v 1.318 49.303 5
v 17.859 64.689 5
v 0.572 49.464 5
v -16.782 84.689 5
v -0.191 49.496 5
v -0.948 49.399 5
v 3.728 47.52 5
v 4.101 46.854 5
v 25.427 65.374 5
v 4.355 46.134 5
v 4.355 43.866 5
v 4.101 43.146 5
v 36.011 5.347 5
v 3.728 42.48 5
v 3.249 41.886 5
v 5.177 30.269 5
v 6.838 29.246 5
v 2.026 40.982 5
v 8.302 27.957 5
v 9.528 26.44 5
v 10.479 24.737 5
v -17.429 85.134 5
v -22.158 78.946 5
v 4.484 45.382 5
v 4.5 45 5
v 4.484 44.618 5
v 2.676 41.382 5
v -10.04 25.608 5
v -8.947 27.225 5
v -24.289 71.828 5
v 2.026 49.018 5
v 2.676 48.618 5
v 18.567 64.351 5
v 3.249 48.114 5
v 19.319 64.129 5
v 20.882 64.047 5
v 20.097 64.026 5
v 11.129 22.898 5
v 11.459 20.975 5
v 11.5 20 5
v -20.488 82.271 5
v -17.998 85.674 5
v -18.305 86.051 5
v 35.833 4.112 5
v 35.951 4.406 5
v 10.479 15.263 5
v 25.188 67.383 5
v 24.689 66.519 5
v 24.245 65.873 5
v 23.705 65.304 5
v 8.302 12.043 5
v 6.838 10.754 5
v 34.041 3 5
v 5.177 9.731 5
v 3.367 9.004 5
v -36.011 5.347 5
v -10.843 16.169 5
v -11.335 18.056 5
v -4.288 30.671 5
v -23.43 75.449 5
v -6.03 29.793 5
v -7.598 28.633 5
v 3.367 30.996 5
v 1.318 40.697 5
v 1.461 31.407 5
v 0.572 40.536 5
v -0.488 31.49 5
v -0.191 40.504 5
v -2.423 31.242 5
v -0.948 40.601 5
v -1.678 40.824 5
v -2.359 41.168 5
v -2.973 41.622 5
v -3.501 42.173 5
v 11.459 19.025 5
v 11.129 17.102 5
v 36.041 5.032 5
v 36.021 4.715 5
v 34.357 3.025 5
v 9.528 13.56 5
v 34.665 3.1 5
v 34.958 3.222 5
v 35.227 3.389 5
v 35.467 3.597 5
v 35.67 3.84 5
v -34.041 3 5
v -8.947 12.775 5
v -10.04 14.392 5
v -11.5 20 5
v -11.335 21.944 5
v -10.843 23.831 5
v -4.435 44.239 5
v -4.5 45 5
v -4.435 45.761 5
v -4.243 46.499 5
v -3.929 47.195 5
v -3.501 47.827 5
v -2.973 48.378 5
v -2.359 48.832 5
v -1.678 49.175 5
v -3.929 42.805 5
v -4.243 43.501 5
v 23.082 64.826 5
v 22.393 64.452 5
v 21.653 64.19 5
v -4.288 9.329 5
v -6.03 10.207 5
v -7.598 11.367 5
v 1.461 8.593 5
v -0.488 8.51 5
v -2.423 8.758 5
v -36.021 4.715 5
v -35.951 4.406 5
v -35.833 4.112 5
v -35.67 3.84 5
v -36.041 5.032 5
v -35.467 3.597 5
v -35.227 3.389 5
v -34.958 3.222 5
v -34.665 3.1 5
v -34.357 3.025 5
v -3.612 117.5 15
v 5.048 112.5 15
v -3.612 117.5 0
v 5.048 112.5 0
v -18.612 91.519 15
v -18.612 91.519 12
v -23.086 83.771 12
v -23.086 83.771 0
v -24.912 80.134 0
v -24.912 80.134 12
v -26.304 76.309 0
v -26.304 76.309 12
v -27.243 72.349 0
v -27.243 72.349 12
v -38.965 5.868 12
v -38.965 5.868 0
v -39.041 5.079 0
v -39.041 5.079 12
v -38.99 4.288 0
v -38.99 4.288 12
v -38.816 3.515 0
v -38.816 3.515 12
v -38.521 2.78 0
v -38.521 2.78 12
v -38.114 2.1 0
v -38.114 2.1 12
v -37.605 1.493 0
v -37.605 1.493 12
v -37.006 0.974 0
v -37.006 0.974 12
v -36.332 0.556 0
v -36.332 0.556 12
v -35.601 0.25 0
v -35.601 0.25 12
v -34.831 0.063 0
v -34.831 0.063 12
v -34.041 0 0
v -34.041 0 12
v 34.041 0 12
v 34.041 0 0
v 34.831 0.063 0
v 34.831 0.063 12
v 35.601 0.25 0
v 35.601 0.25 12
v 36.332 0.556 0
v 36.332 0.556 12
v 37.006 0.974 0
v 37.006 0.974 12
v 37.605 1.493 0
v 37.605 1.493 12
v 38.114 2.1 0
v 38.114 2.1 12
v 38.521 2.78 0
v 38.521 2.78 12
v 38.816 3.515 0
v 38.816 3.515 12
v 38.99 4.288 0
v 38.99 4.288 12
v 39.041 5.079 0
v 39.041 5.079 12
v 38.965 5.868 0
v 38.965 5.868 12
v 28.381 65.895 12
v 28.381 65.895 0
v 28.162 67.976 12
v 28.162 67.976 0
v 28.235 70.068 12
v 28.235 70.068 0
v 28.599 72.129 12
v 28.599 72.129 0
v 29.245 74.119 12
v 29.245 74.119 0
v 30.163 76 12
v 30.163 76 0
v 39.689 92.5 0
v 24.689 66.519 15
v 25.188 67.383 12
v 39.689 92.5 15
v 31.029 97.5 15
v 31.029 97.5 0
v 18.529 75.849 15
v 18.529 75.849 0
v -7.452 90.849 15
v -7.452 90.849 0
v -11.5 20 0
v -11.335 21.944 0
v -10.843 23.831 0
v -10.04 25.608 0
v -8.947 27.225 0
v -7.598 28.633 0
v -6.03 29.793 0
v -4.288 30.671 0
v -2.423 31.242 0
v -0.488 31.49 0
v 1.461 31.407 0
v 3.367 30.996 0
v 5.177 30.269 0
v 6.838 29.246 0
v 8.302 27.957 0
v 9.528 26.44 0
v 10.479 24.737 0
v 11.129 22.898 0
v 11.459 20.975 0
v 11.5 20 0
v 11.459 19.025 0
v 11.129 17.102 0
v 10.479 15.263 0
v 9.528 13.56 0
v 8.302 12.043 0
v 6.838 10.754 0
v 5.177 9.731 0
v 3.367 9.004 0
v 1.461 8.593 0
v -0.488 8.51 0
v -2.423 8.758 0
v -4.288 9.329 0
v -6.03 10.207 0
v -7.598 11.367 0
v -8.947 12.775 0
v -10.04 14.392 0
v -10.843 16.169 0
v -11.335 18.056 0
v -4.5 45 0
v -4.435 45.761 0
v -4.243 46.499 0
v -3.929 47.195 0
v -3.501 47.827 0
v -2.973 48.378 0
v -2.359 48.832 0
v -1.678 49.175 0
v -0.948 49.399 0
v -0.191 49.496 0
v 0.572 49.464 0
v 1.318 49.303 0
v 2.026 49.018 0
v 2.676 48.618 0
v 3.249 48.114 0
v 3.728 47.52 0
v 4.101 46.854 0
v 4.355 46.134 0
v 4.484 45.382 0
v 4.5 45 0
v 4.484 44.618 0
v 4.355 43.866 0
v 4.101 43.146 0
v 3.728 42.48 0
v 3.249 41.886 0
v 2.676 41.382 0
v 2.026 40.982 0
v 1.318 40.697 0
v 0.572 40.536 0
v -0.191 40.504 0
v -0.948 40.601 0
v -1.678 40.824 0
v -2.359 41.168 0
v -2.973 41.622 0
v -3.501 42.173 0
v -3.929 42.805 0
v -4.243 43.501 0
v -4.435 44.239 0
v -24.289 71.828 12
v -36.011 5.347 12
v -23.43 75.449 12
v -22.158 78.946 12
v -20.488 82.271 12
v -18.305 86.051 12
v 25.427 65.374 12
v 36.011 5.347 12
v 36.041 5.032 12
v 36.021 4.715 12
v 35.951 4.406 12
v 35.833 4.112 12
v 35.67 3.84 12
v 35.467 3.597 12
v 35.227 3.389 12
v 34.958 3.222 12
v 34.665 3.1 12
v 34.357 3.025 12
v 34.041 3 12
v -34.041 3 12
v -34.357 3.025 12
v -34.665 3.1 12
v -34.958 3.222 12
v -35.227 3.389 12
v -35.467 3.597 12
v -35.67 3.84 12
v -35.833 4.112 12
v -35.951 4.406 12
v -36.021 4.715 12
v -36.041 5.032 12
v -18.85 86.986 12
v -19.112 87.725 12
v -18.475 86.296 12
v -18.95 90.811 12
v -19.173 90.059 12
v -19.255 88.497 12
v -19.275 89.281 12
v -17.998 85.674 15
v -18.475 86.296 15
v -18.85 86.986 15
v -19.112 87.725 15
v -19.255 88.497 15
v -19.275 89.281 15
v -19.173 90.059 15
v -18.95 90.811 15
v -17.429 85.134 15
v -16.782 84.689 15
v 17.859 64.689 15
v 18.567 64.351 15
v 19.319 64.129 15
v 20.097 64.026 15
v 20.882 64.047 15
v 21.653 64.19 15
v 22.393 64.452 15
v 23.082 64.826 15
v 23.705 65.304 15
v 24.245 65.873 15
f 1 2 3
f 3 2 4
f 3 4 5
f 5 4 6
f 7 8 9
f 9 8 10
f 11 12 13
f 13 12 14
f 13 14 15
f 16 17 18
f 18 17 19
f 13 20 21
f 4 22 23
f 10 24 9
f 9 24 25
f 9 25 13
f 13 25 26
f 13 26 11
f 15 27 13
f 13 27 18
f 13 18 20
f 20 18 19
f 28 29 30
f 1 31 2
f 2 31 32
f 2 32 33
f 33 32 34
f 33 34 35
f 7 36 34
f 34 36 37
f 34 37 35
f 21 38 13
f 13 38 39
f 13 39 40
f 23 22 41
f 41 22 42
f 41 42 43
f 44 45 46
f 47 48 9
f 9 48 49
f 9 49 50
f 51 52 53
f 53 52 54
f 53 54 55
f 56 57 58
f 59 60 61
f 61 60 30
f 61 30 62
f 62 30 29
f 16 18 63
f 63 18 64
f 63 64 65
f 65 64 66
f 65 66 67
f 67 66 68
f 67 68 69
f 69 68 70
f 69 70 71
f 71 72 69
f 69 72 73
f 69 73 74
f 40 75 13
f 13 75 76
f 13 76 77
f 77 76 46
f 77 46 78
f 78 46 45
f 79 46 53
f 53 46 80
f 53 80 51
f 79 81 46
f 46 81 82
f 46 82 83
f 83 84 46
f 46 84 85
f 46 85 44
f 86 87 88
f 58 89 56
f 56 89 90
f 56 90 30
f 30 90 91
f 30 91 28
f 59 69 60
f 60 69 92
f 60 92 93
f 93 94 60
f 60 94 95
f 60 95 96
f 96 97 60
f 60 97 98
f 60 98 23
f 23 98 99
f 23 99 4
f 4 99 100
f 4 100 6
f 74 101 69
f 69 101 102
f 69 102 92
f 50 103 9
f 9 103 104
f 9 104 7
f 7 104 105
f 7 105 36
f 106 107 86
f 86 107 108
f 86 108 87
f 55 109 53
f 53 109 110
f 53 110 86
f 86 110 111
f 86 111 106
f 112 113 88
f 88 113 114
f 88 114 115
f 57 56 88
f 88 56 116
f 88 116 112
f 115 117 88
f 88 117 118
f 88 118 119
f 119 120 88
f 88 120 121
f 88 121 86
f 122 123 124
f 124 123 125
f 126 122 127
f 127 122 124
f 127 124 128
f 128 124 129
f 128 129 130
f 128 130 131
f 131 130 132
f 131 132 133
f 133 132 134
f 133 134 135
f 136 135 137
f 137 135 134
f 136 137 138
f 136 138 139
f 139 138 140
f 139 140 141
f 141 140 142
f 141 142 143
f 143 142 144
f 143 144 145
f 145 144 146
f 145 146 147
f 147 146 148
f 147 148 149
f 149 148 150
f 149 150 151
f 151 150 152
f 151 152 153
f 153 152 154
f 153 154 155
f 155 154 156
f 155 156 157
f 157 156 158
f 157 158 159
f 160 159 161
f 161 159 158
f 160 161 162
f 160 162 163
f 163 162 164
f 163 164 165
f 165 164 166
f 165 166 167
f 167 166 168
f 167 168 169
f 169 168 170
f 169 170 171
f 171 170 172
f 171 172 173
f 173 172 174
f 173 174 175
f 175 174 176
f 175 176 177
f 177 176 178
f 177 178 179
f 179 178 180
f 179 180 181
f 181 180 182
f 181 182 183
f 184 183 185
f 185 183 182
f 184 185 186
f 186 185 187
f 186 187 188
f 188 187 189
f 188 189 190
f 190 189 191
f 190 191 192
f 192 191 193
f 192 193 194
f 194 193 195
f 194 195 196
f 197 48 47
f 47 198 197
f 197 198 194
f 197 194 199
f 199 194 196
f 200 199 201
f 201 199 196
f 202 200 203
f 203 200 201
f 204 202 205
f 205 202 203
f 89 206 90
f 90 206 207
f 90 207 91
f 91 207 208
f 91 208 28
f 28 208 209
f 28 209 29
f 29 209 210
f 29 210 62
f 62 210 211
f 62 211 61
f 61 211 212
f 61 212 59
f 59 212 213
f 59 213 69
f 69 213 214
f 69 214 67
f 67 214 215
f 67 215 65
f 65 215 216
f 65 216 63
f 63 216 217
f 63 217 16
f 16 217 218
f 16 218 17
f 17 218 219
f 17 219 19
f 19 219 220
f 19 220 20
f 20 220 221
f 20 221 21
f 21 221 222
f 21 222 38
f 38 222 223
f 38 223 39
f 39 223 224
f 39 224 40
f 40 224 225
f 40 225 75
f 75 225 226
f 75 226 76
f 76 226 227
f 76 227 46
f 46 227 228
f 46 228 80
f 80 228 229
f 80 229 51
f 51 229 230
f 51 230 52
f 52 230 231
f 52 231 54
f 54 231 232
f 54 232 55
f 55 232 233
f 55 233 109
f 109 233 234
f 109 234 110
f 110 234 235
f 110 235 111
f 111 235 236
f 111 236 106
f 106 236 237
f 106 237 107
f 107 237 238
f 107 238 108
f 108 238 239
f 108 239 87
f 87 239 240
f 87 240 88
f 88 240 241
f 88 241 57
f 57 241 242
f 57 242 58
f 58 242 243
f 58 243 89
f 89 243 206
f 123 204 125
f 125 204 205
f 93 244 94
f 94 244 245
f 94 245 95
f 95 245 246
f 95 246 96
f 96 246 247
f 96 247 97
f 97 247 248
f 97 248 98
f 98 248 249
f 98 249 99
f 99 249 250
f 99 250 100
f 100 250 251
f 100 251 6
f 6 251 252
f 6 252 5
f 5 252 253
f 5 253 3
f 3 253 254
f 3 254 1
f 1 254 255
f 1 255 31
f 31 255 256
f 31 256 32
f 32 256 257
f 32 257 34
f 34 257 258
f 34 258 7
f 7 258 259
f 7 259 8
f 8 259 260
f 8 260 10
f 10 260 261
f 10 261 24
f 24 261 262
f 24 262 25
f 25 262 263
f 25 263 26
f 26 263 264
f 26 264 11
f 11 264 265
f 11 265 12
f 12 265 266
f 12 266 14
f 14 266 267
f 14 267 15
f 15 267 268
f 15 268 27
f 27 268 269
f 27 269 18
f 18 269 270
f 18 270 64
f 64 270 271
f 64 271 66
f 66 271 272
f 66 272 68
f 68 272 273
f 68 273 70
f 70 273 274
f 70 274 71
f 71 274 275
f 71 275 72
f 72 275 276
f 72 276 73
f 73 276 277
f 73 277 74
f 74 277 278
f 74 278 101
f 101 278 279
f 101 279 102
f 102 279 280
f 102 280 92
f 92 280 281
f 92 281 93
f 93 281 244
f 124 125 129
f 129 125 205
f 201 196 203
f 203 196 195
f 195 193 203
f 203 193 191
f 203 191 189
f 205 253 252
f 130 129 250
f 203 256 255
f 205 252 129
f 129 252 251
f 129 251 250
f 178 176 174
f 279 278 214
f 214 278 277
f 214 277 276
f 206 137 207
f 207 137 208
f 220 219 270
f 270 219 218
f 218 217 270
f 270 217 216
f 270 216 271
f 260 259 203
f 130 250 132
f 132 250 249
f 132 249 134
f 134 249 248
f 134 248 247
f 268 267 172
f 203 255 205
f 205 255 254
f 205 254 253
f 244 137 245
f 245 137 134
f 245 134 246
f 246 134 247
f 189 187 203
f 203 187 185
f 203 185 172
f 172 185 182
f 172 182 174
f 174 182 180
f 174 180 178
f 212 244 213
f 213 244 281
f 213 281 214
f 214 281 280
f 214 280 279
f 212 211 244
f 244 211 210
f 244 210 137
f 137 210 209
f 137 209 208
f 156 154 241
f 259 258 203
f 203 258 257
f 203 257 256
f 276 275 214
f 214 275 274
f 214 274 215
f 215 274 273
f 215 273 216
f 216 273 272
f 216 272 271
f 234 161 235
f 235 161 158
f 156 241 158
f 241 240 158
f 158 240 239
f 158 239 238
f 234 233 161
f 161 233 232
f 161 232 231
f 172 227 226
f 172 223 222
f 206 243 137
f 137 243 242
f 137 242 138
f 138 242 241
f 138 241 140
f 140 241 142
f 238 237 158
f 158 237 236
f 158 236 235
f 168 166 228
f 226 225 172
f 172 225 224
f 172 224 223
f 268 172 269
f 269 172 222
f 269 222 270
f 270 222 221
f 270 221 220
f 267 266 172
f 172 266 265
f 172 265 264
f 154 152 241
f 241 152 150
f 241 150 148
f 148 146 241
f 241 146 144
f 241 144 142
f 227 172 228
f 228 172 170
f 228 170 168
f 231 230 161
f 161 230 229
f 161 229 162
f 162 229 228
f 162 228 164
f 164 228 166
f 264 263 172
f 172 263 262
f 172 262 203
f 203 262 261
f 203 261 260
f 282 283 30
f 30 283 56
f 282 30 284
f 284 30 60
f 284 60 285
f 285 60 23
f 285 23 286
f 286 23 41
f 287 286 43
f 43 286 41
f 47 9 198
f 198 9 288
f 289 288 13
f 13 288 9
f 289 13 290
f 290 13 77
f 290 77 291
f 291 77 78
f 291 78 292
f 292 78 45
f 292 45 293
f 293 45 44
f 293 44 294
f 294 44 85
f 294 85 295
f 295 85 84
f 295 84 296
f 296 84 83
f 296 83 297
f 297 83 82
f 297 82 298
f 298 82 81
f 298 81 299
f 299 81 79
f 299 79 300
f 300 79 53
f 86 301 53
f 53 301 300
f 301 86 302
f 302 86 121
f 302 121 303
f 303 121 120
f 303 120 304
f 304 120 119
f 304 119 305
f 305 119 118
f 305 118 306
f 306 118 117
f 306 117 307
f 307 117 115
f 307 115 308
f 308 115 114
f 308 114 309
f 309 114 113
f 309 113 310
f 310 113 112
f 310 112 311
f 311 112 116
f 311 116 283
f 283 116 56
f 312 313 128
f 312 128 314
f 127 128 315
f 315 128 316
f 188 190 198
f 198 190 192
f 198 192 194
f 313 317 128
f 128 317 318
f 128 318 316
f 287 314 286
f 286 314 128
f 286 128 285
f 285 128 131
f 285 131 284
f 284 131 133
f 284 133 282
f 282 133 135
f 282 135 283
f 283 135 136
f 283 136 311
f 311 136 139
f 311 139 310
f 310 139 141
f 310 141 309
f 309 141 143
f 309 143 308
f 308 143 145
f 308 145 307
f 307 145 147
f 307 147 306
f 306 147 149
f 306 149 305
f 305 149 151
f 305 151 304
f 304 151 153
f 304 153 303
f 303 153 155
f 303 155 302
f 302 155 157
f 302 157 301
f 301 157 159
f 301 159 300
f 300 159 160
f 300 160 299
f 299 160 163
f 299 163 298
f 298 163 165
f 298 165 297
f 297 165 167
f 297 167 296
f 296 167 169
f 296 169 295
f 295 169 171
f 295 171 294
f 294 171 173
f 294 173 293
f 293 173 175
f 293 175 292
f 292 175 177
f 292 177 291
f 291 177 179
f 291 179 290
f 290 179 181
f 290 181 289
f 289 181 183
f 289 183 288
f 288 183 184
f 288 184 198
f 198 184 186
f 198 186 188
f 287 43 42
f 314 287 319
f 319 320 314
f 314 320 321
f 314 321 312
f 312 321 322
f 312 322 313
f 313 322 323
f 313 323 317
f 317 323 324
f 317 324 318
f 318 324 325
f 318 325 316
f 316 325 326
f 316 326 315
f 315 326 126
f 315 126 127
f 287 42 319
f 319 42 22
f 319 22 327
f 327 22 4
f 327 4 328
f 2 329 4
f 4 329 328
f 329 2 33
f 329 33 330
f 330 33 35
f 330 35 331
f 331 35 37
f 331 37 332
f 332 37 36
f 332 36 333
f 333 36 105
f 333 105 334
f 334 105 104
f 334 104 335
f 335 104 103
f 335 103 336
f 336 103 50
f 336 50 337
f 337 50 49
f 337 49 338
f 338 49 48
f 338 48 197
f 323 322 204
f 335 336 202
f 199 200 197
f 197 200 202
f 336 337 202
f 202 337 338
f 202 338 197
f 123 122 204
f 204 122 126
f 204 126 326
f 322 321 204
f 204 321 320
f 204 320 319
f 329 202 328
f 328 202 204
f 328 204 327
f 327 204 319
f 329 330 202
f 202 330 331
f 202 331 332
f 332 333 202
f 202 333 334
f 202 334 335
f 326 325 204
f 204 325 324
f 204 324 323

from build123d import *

# Parameters (mm, degrees)
SKETCH1_R           = 11.5
SKETCH1_R_2         = 4.5
BOSS_EXTRUDE1_DEPTH = 5
BOSS_EXTRUDE2_DEPTH = 12
BOSS_EXTRUDE3_DEPTH = 15


with BuildPart() as part:
    # Sketch1 → Boss-Extrude1 (new body)
    with BuildSketch(Plane.XY):
        with BuildLine():
            ThreePointArc((-38.965270802, 5.868240888), (-37.871454253, 1.786061952), (-34.041232037, 0))
            Line((-34.041232037, 0), (34.041232037, 0))
            ThreePointArc((34.041232037, 0), (37.871454253, 1.786061952), (38.965270802, 5.868240888))
            Line((38.965270802, 5.868240888), (28.380934182, 65.894996734))
            ThreePointArc((28.380934182, 65.894996734), (28.380934182, 71.104442064), (30.162669421, 75.999719399))
            Line((30.162669421, 75.999719399), (39.689110868, 92.5))
            Line((39.689110868, 92.5), (31.02885683, 97.5))
            Line((31.02885683, 97.5), (18.52885683, 75.849364905))
            Line((18.52885683, 75.849364905), (-7.451905284, 90.849364905))
            Line((-7.451905284, 90.849364905), (5.048094716, 112.5))
            Line((5.048094716, 112.5), (-3.612159322, 117.5))
            Line((-3.612159322, 117.5), (-23.085586146, 83.771035343))
            ThreePointArc((-23.085586146, 83.771035343), (-25.663938741, 78.241740359), (-27.242968369, 72.348721561))
            Line((-27.242968369, 72.348721561), (-38.965270802, 5.868240888))
        make_face()
        with Locations((0, 20)):
            Circle(SKETCH1_R, mode=Mode.SUBTRACT)
        with Locations((0, 45)):
            Circle(SKETCH1_R_2, mode=Mode.SUBTRACT)
    extrude(amount=BOSS_EXTRUDE1_DEPTH)

    # Sketch1<3> → Boss-Extrude2 (add)
    with BuildSketch(Plane.XY):
        with BuildLine():
            ThreePointArc((-38.965270802, 5.868240888), (-37.871454253, 1.786061952), (-34.041232037, 0))
            Line((-34.041232037, 0), (34.041232037, 0))
            ThreePointArc((34.041232037, 0), (37.871454253, 1.786061952), (38.965270802, 5.868240888))
            Line((38.965270802, 5.868240888), (28.380934182, 65.894996734))
            ThreePointArc((28.380934182, 65.894996734), (28.380934182, 71.104442064), (30.162669421, 75.999719399))
            Line((30.162669421, 75.999719399), (25.187732235, 67.382875429))
            ThreePointArc((25.187732235, 67.382875429), (25.278878582, 66.375106712), (25.426510923, 65.374052201))
            Line((25.426510923, 65.374052201), (36.010847543, 5.347296355))
            ThreePointArc((36.010847543, 5.347296355), (35.573320923, 3.714424781), (34.041232037, 3))
            Line((34.041232037, 3), (-34.041232037, 3))
            ThreePointArc((-34.041232037, 3), (-35.573320923, 3.714424781), (-36.010847543, 5.347296355))
            Line((-36.010847543, 5.347296355), (-24.28854511, 71.827777028))
            ThreePointArc((-24.28854511, 71.827777028), (-22.844860879, 77.215679929), (-20.487509935, 82.271035343))
            Line((-20.487509935, 82.271035343), (-18.305370958, 86.05061092))
            ThreePointArc((-18.305370958, 86.05061092), (-19.274182883, 88.739179708), (-18.612159322, 91.519237886))
            Line((-18.612159322, 91.519237886), (-23.085586146, 83.771035343))
            ThreePointArc((-23.085586146, 83.771035343), (-25.663938741, 78.241740359), (-27.242968369, 72.348721561))
            Line((-27.242968369, 72.348721561), (-38.965270802, 5.868240888))
        make_face()
    extrude(amount=BOSS_EXTRUDE2_DEPTH)

    # Sketch1<4> → Boss-Extrude3 (add)
    with BuildSketch(Plane.XY):
        with BuildLine():
            Line((25.187732235, 67.382875429), (30.162669421, 75.999719399))
            Line((30.162669421, 75.999719399), (39.689110868, 92.5))
            Line((39.689110868, 92.5), (31.02885683, 97.5))
            Line((31.02885683, 97.5), (18.52885683, 75.849364905))
            Line((18.52885683, 75.849364905), (-7.451905284, 90.849364905))
            Line((-7.451905284, 90.849364905), (5.048094716, 112.5))
            Line((5.048094716, 112.5), (-3.612159322, 117.5))
            Line((-3.612159322, 117.5), (-18.612159322, 91.519237886))
            ThreePointArc((-18.612159322, 91.519237886), (-19.274182883, 88.739179708), (-18.305370958, 86.05061092))
            ThreePointArc((-18.305370958, 86.05061092), (-17.613984793, 85.291223321), (-16.782032303, 84.689110868))
            Line((-16.782032303, 84.689110868), (17.858983849, 64.689110868))
            ThreePointArc((17.858983849, 64.689110868), (21.653079074, 64.189608755), (24.689110868, 66.519237886))
            Line((24.689110868, 66.519237886), (25.187732235, 67.382875429))
        make_face()
    extrude(amount=BOSS_EXTRUDE3_DEPTH)


solid = part.part
